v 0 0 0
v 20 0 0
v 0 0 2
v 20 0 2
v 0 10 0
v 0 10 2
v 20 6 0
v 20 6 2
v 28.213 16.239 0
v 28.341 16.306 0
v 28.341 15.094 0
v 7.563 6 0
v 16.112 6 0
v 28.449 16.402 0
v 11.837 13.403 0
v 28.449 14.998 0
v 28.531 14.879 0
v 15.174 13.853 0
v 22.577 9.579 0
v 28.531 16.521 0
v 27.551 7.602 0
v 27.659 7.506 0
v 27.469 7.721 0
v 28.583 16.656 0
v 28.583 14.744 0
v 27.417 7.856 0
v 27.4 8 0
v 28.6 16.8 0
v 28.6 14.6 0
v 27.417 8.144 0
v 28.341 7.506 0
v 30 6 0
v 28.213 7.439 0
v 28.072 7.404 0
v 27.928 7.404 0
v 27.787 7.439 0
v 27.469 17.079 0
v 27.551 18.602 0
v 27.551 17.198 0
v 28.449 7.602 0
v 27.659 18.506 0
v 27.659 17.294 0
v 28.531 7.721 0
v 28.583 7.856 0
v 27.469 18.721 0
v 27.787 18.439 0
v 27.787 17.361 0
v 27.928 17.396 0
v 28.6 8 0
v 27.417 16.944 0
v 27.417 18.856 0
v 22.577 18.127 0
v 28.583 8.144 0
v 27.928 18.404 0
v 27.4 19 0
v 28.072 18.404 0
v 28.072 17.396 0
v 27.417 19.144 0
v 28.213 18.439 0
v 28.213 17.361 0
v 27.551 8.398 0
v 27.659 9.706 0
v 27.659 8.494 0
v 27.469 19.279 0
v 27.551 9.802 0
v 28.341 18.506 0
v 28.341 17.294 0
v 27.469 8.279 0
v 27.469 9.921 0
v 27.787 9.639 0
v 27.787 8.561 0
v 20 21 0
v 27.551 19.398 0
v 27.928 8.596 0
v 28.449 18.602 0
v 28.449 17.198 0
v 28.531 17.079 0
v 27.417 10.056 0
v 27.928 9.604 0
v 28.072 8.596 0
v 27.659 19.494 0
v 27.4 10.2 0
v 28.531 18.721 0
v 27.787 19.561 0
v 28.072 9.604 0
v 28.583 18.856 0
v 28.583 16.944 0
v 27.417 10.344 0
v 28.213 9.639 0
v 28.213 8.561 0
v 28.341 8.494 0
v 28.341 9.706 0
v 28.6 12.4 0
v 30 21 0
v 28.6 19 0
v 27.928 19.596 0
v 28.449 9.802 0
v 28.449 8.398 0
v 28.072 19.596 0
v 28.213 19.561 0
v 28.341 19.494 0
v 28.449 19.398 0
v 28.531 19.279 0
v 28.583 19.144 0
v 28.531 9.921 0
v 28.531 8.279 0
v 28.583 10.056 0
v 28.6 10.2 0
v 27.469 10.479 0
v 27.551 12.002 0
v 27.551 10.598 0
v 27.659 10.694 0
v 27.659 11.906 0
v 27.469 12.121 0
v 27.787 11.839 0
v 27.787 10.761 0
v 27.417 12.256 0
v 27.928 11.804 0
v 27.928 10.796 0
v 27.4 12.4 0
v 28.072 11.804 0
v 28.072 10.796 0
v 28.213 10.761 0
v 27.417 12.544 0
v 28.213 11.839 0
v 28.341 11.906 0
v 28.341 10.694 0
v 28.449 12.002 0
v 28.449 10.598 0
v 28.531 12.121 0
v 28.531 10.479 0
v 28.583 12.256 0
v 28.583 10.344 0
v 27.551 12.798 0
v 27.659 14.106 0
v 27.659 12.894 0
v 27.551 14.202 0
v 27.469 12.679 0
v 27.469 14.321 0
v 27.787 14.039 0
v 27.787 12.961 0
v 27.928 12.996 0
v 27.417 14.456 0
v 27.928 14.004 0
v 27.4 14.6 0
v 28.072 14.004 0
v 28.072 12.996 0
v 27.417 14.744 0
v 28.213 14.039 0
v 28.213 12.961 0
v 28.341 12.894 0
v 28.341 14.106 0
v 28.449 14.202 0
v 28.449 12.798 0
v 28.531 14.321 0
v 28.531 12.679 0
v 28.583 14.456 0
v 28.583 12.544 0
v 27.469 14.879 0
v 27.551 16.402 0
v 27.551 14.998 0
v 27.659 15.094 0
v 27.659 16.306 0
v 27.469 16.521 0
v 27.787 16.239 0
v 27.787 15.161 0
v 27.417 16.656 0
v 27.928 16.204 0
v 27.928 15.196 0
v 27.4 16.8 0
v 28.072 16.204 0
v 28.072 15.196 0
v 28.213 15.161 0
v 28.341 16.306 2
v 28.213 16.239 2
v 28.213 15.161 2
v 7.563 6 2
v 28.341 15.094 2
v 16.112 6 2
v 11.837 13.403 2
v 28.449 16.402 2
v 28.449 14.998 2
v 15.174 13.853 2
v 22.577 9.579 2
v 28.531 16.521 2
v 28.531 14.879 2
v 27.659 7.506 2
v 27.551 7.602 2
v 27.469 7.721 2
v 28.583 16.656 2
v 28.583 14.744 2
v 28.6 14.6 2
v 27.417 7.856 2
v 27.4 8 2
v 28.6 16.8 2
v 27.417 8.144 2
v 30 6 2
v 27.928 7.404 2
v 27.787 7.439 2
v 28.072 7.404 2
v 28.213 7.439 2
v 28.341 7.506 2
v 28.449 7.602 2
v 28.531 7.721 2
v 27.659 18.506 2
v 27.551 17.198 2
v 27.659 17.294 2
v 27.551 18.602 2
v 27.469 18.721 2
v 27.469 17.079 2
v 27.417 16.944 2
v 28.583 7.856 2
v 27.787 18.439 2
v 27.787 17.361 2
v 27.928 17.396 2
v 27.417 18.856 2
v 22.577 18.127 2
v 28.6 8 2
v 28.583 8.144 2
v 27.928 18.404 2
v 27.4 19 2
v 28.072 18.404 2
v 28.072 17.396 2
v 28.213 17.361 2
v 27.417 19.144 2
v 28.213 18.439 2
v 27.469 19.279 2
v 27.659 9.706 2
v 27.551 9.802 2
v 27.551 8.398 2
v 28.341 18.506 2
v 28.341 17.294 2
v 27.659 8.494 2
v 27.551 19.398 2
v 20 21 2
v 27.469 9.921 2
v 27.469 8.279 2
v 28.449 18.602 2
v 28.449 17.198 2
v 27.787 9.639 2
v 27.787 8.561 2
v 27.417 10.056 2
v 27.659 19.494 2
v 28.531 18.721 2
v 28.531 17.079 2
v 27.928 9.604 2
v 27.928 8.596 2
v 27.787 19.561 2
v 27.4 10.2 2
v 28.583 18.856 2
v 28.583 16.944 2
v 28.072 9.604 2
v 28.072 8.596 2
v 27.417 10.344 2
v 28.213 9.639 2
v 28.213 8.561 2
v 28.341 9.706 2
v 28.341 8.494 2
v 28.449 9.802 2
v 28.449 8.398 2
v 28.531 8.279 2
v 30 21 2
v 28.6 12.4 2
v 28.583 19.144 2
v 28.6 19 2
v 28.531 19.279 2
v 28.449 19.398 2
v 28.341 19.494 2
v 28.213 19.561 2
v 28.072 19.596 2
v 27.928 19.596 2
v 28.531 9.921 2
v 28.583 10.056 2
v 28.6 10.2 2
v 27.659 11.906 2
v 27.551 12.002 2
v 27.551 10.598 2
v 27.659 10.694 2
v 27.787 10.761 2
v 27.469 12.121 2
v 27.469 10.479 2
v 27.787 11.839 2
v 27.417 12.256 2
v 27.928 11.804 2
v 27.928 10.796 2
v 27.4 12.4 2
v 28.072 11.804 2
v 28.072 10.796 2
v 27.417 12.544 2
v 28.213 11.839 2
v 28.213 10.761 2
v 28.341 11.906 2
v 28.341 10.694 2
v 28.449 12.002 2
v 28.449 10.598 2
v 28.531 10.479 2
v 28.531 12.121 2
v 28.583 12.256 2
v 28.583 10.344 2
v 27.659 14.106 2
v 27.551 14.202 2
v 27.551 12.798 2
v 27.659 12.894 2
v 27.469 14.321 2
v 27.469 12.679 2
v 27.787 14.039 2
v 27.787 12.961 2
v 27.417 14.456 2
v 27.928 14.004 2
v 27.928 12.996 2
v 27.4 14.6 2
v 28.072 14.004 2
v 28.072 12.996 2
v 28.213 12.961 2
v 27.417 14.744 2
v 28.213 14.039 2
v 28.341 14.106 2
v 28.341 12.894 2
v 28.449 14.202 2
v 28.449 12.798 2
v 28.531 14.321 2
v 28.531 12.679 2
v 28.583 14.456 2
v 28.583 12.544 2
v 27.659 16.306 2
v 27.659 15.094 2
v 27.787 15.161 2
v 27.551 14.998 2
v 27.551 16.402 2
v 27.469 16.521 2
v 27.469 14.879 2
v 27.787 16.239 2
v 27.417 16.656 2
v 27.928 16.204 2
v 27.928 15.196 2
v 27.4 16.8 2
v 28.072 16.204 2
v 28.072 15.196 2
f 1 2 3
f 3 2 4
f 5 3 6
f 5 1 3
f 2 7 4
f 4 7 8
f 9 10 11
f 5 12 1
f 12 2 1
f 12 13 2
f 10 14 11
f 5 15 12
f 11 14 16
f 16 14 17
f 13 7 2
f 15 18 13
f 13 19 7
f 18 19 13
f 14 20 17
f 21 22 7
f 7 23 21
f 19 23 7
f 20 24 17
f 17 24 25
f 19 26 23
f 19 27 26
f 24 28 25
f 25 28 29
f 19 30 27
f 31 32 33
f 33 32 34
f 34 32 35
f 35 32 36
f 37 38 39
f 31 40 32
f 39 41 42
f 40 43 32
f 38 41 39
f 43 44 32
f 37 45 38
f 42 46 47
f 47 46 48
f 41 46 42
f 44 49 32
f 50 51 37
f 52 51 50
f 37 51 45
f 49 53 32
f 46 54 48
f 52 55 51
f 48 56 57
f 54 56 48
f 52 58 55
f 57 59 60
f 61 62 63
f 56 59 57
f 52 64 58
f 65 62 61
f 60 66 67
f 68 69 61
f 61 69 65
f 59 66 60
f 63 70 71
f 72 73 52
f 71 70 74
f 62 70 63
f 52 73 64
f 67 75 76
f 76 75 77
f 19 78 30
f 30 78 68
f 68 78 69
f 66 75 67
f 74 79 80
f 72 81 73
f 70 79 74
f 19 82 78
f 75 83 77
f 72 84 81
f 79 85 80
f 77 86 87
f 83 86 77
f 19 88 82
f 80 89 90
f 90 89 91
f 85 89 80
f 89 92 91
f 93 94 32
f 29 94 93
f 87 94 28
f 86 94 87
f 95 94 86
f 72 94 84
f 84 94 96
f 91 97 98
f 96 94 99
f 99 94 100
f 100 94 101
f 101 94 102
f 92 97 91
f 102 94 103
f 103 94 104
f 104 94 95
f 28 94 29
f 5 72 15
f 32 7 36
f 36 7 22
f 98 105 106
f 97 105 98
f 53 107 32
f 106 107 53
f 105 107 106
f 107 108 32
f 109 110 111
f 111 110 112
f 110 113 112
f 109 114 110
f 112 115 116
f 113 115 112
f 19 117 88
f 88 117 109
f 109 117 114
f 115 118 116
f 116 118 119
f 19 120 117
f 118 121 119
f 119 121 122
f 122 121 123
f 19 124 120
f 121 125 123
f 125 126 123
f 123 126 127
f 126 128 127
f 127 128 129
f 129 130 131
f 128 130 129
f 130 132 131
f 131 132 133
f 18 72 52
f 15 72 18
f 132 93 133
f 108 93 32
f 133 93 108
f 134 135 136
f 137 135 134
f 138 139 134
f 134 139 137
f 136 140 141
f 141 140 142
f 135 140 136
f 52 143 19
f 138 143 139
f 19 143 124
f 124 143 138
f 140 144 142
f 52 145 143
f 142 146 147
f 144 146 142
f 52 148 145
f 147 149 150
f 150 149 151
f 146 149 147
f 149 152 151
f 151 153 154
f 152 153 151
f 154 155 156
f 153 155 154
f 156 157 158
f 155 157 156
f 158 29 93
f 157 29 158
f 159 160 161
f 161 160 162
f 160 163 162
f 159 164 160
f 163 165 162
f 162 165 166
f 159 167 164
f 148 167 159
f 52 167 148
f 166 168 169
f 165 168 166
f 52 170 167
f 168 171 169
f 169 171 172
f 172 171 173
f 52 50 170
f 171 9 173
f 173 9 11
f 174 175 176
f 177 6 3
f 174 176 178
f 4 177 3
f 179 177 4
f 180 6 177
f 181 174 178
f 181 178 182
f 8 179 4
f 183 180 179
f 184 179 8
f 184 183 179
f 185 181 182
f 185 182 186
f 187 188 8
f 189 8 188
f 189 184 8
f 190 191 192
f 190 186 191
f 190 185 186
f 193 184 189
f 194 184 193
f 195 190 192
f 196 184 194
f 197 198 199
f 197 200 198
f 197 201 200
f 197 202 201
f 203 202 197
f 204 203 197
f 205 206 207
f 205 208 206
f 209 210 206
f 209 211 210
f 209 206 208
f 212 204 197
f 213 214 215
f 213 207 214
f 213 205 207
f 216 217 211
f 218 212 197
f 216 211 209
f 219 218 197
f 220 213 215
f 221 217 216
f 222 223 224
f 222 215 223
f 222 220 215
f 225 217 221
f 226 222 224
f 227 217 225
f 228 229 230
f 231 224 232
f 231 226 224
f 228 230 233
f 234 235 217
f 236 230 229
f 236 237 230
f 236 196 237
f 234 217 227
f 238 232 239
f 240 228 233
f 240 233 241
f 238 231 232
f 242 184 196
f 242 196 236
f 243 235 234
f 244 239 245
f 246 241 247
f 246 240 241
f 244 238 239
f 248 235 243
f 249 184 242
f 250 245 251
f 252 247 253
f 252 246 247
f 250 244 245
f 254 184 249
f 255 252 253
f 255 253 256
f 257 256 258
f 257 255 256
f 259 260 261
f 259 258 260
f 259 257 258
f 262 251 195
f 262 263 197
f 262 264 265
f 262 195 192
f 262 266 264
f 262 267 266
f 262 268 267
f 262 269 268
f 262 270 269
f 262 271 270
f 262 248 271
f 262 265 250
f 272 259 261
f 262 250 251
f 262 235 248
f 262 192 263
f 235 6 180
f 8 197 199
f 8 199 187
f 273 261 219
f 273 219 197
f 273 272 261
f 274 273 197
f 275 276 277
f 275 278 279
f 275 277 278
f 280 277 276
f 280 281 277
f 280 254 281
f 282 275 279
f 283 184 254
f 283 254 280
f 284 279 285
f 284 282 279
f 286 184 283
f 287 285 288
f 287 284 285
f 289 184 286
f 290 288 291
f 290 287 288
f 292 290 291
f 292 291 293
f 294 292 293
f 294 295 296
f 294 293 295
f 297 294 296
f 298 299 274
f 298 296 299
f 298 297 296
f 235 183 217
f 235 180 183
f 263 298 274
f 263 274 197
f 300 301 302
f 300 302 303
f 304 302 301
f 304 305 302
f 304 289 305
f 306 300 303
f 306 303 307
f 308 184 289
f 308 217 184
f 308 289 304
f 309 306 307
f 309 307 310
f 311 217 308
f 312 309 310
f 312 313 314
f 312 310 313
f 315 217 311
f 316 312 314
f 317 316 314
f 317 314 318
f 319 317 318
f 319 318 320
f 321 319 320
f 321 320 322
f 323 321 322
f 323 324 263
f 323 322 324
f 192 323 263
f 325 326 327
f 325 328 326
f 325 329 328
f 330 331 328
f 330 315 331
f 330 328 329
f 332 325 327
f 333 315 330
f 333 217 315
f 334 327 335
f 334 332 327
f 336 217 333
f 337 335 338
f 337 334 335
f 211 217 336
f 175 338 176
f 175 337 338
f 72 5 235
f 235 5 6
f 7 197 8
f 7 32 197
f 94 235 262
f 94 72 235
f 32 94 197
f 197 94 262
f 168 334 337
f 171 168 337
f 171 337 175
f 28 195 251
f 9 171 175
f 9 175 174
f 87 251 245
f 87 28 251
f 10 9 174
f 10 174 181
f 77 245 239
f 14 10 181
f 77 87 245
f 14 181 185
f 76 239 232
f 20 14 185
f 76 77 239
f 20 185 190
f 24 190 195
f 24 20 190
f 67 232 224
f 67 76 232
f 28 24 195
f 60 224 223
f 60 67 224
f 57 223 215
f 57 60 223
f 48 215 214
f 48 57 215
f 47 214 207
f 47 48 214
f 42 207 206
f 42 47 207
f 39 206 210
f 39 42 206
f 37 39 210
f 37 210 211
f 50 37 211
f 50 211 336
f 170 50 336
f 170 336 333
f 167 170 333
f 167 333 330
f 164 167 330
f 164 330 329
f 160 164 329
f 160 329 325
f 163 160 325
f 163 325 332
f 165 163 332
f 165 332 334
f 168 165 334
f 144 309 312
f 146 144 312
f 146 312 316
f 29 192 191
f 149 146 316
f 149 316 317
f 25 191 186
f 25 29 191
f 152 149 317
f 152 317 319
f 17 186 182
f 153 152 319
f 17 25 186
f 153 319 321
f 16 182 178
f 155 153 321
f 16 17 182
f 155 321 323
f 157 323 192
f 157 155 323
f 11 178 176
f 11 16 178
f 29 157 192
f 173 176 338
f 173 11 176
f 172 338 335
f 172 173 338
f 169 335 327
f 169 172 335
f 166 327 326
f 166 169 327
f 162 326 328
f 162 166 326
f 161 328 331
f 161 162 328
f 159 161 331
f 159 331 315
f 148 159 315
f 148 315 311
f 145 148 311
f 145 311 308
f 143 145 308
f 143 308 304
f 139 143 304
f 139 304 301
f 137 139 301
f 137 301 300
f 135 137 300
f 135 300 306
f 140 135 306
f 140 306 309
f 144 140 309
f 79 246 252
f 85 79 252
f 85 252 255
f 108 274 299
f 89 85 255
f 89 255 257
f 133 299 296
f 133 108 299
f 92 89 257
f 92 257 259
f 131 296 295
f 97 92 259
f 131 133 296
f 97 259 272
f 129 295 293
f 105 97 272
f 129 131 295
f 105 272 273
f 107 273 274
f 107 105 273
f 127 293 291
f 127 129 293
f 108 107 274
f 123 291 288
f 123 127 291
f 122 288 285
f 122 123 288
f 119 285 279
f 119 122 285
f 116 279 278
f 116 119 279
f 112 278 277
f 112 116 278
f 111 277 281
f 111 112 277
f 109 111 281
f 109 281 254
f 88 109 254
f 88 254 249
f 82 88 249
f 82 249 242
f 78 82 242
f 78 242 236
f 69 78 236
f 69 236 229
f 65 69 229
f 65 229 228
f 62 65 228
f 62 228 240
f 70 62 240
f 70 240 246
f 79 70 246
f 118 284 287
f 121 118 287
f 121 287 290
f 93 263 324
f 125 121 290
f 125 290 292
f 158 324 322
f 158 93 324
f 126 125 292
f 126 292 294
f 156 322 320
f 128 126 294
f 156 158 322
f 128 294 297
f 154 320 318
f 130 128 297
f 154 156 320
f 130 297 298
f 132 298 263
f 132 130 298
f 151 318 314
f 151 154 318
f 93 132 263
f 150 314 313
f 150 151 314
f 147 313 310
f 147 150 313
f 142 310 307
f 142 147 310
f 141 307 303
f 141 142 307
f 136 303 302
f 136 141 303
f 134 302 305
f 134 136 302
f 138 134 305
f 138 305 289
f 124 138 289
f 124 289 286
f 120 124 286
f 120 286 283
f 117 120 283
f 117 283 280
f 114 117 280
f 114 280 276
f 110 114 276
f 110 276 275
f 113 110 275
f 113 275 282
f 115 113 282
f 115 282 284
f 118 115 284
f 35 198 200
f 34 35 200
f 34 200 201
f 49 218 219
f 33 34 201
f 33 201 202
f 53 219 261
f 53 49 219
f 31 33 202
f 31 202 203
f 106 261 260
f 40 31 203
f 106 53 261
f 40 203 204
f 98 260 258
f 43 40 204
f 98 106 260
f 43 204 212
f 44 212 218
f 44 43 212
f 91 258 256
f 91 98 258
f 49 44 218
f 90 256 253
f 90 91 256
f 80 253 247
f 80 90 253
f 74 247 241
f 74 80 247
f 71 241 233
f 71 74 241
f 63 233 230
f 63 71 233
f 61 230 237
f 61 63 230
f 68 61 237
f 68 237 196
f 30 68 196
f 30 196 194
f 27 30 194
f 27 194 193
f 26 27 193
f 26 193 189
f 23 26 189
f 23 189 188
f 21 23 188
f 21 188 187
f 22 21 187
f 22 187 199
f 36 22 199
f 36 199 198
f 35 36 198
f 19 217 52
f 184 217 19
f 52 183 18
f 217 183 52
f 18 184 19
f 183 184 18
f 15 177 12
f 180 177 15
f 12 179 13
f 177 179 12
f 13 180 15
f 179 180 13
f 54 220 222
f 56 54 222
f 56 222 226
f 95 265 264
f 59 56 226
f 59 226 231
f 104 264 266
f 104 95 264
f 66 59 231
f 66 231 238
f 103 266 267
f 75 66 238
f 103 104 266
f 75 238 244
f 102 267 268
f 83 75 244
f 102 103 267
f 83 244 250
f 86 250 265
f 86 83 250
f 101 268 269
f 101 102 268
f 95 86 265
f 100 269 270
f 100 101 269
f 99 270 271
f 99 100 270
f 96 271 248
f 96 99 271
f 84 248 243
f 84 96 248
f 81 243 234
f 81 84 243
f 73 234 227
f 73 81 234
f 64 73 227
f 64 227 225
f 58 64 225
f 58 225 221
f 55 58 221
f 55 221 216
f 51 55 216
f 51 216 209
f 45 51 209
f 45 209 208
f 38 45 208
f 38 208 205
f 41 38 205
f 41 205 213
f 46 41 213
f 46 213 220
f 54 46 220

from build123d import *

# Parameters (mm, degrees)
PAD_DEPTH           = 2
SKETCH001_R         = 0.6
HOLE_DEPTH          = 2.001
LINEARPATTERN_COUNT = 6
LINEARPATTERN_PITCH = 2.2
POCKET_DEPTH        = 2.001


with BuildPart() as part:
    # Sketch → Pad (new body)
    with BuildSketch(Plane.XY):
        Polygon((0, 0), (20, 0), (20, 6), (30, 6), (30, 21), (20, 21), (0, 10), align=None)
    extrude(amount=PAD_DEPTH)

    # Sketch001 (on Face9 of Pad) → Hole (cut, through all)
    with BuildSketch(Plane.XY.offset(2)):
        with Locations((28, 19)):
            Circle(SKETCH001_R)
    hole = extrude(amount=-HOLE_DEPTH, mode=Mode.SUBTRACT)

    # LinearPattern: Hole ×6
    with Locations(*[(0, -i * LINEARPATTERN_PITCH, 0) for i in range(1, LINEARPATTERN_COUNT)]):
        add(hole, mode=Mode.SUBTRACT)

    # Sketch002 (on Face5 of LinearPattern) → Pocket (cut, through all)
    with BuildSketch(Plane.XY.offset(2)):
        Polygon((11.837454, 13.403028), (7.563314, 6), (16.111595, 6), align=None)
        Polygon((22.577143, 9.579128), (22.577143, 18.127408), (15.174115, 13.853268), align=None)
    extrude(amount=-POCKET_DEPTH, mode=Mode.SUBTRACT)


solid = part.part
